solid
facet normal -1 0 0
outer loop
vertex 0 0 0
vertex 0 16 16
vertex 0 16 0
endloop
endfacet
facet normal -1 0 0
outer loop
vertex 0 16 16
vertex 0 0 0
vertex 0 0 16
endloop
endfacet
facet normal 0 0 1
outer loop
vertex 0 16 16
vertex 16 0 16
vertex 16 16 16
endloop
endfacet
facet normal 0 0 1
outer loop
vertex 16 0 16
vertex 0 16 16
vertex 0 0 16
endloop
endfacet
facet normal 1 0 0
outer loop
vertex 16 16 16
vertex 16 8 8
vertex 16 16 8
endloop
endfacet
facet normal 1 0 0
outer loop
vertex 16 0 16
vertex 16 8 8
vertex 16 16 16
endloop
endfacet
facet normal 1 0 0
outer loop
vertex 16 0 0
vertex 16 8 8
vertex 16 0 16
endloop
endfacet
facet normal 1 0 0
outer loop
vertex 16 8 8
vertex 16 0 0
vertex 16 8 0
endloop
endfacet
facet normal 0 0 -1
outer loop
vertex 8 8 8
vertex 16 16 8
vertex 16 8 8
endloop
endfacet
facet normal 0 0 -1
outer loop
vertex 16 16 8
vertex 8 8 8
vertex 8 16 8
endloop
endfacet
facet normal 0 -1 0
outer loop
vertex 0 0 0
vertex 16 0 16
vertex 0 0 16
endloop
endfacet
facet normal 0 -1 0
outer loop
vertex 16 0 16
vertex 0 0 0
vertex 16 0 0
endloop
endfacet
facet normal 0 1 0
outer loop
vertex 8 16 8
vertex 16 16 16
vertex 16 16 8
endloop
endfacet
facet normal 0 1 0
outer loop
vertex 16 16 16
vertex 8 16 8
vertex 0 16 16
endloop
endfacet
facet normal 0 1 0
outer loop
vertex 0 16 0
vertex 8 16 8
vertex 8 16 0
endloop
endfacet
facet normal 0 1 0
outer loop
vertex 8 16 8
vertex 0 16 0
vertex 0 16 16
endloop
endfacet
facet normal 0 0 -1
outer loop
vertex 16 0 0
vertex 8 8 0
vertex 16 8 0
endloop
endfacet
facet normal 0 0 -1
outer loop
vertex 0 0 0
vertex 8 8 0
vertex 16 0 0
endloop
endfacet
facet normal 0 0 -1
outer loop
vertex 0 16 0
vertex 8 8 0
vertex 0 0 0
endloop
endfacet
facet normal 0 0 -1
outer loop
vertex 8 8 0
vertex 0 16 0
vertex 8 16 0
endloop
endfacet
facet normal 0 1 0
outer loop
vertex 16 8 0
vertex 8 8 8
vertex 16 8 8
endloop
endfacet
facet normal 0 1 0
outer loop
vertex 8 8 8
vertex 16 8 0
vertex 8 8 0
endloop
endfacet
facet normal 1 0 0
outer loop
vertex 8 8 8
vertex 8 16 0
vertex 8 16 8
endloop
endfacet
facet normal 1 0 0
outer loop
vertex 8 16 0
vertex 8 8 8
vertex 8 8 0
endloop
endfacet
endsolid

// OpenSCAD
// how big the frame will be
border_size = 8;


// edges
/////////////////////////////////////////////////////////////////////////////

// bottom
difference() {
	cube([border_size * 2, border_size, border_size * 2]);
}

// side
cube([border_size, border_size * 2, border_size * 2]);


// ridges
/////////////////////////////////////////////////////////////////////////////

translate([0, 0, border_size]) {
	// bottom
	cube([border_size * 2, border_size * 2, border_size]);

	// side
	cube([border_size * 2, border_size * 2, border_size]);
}
